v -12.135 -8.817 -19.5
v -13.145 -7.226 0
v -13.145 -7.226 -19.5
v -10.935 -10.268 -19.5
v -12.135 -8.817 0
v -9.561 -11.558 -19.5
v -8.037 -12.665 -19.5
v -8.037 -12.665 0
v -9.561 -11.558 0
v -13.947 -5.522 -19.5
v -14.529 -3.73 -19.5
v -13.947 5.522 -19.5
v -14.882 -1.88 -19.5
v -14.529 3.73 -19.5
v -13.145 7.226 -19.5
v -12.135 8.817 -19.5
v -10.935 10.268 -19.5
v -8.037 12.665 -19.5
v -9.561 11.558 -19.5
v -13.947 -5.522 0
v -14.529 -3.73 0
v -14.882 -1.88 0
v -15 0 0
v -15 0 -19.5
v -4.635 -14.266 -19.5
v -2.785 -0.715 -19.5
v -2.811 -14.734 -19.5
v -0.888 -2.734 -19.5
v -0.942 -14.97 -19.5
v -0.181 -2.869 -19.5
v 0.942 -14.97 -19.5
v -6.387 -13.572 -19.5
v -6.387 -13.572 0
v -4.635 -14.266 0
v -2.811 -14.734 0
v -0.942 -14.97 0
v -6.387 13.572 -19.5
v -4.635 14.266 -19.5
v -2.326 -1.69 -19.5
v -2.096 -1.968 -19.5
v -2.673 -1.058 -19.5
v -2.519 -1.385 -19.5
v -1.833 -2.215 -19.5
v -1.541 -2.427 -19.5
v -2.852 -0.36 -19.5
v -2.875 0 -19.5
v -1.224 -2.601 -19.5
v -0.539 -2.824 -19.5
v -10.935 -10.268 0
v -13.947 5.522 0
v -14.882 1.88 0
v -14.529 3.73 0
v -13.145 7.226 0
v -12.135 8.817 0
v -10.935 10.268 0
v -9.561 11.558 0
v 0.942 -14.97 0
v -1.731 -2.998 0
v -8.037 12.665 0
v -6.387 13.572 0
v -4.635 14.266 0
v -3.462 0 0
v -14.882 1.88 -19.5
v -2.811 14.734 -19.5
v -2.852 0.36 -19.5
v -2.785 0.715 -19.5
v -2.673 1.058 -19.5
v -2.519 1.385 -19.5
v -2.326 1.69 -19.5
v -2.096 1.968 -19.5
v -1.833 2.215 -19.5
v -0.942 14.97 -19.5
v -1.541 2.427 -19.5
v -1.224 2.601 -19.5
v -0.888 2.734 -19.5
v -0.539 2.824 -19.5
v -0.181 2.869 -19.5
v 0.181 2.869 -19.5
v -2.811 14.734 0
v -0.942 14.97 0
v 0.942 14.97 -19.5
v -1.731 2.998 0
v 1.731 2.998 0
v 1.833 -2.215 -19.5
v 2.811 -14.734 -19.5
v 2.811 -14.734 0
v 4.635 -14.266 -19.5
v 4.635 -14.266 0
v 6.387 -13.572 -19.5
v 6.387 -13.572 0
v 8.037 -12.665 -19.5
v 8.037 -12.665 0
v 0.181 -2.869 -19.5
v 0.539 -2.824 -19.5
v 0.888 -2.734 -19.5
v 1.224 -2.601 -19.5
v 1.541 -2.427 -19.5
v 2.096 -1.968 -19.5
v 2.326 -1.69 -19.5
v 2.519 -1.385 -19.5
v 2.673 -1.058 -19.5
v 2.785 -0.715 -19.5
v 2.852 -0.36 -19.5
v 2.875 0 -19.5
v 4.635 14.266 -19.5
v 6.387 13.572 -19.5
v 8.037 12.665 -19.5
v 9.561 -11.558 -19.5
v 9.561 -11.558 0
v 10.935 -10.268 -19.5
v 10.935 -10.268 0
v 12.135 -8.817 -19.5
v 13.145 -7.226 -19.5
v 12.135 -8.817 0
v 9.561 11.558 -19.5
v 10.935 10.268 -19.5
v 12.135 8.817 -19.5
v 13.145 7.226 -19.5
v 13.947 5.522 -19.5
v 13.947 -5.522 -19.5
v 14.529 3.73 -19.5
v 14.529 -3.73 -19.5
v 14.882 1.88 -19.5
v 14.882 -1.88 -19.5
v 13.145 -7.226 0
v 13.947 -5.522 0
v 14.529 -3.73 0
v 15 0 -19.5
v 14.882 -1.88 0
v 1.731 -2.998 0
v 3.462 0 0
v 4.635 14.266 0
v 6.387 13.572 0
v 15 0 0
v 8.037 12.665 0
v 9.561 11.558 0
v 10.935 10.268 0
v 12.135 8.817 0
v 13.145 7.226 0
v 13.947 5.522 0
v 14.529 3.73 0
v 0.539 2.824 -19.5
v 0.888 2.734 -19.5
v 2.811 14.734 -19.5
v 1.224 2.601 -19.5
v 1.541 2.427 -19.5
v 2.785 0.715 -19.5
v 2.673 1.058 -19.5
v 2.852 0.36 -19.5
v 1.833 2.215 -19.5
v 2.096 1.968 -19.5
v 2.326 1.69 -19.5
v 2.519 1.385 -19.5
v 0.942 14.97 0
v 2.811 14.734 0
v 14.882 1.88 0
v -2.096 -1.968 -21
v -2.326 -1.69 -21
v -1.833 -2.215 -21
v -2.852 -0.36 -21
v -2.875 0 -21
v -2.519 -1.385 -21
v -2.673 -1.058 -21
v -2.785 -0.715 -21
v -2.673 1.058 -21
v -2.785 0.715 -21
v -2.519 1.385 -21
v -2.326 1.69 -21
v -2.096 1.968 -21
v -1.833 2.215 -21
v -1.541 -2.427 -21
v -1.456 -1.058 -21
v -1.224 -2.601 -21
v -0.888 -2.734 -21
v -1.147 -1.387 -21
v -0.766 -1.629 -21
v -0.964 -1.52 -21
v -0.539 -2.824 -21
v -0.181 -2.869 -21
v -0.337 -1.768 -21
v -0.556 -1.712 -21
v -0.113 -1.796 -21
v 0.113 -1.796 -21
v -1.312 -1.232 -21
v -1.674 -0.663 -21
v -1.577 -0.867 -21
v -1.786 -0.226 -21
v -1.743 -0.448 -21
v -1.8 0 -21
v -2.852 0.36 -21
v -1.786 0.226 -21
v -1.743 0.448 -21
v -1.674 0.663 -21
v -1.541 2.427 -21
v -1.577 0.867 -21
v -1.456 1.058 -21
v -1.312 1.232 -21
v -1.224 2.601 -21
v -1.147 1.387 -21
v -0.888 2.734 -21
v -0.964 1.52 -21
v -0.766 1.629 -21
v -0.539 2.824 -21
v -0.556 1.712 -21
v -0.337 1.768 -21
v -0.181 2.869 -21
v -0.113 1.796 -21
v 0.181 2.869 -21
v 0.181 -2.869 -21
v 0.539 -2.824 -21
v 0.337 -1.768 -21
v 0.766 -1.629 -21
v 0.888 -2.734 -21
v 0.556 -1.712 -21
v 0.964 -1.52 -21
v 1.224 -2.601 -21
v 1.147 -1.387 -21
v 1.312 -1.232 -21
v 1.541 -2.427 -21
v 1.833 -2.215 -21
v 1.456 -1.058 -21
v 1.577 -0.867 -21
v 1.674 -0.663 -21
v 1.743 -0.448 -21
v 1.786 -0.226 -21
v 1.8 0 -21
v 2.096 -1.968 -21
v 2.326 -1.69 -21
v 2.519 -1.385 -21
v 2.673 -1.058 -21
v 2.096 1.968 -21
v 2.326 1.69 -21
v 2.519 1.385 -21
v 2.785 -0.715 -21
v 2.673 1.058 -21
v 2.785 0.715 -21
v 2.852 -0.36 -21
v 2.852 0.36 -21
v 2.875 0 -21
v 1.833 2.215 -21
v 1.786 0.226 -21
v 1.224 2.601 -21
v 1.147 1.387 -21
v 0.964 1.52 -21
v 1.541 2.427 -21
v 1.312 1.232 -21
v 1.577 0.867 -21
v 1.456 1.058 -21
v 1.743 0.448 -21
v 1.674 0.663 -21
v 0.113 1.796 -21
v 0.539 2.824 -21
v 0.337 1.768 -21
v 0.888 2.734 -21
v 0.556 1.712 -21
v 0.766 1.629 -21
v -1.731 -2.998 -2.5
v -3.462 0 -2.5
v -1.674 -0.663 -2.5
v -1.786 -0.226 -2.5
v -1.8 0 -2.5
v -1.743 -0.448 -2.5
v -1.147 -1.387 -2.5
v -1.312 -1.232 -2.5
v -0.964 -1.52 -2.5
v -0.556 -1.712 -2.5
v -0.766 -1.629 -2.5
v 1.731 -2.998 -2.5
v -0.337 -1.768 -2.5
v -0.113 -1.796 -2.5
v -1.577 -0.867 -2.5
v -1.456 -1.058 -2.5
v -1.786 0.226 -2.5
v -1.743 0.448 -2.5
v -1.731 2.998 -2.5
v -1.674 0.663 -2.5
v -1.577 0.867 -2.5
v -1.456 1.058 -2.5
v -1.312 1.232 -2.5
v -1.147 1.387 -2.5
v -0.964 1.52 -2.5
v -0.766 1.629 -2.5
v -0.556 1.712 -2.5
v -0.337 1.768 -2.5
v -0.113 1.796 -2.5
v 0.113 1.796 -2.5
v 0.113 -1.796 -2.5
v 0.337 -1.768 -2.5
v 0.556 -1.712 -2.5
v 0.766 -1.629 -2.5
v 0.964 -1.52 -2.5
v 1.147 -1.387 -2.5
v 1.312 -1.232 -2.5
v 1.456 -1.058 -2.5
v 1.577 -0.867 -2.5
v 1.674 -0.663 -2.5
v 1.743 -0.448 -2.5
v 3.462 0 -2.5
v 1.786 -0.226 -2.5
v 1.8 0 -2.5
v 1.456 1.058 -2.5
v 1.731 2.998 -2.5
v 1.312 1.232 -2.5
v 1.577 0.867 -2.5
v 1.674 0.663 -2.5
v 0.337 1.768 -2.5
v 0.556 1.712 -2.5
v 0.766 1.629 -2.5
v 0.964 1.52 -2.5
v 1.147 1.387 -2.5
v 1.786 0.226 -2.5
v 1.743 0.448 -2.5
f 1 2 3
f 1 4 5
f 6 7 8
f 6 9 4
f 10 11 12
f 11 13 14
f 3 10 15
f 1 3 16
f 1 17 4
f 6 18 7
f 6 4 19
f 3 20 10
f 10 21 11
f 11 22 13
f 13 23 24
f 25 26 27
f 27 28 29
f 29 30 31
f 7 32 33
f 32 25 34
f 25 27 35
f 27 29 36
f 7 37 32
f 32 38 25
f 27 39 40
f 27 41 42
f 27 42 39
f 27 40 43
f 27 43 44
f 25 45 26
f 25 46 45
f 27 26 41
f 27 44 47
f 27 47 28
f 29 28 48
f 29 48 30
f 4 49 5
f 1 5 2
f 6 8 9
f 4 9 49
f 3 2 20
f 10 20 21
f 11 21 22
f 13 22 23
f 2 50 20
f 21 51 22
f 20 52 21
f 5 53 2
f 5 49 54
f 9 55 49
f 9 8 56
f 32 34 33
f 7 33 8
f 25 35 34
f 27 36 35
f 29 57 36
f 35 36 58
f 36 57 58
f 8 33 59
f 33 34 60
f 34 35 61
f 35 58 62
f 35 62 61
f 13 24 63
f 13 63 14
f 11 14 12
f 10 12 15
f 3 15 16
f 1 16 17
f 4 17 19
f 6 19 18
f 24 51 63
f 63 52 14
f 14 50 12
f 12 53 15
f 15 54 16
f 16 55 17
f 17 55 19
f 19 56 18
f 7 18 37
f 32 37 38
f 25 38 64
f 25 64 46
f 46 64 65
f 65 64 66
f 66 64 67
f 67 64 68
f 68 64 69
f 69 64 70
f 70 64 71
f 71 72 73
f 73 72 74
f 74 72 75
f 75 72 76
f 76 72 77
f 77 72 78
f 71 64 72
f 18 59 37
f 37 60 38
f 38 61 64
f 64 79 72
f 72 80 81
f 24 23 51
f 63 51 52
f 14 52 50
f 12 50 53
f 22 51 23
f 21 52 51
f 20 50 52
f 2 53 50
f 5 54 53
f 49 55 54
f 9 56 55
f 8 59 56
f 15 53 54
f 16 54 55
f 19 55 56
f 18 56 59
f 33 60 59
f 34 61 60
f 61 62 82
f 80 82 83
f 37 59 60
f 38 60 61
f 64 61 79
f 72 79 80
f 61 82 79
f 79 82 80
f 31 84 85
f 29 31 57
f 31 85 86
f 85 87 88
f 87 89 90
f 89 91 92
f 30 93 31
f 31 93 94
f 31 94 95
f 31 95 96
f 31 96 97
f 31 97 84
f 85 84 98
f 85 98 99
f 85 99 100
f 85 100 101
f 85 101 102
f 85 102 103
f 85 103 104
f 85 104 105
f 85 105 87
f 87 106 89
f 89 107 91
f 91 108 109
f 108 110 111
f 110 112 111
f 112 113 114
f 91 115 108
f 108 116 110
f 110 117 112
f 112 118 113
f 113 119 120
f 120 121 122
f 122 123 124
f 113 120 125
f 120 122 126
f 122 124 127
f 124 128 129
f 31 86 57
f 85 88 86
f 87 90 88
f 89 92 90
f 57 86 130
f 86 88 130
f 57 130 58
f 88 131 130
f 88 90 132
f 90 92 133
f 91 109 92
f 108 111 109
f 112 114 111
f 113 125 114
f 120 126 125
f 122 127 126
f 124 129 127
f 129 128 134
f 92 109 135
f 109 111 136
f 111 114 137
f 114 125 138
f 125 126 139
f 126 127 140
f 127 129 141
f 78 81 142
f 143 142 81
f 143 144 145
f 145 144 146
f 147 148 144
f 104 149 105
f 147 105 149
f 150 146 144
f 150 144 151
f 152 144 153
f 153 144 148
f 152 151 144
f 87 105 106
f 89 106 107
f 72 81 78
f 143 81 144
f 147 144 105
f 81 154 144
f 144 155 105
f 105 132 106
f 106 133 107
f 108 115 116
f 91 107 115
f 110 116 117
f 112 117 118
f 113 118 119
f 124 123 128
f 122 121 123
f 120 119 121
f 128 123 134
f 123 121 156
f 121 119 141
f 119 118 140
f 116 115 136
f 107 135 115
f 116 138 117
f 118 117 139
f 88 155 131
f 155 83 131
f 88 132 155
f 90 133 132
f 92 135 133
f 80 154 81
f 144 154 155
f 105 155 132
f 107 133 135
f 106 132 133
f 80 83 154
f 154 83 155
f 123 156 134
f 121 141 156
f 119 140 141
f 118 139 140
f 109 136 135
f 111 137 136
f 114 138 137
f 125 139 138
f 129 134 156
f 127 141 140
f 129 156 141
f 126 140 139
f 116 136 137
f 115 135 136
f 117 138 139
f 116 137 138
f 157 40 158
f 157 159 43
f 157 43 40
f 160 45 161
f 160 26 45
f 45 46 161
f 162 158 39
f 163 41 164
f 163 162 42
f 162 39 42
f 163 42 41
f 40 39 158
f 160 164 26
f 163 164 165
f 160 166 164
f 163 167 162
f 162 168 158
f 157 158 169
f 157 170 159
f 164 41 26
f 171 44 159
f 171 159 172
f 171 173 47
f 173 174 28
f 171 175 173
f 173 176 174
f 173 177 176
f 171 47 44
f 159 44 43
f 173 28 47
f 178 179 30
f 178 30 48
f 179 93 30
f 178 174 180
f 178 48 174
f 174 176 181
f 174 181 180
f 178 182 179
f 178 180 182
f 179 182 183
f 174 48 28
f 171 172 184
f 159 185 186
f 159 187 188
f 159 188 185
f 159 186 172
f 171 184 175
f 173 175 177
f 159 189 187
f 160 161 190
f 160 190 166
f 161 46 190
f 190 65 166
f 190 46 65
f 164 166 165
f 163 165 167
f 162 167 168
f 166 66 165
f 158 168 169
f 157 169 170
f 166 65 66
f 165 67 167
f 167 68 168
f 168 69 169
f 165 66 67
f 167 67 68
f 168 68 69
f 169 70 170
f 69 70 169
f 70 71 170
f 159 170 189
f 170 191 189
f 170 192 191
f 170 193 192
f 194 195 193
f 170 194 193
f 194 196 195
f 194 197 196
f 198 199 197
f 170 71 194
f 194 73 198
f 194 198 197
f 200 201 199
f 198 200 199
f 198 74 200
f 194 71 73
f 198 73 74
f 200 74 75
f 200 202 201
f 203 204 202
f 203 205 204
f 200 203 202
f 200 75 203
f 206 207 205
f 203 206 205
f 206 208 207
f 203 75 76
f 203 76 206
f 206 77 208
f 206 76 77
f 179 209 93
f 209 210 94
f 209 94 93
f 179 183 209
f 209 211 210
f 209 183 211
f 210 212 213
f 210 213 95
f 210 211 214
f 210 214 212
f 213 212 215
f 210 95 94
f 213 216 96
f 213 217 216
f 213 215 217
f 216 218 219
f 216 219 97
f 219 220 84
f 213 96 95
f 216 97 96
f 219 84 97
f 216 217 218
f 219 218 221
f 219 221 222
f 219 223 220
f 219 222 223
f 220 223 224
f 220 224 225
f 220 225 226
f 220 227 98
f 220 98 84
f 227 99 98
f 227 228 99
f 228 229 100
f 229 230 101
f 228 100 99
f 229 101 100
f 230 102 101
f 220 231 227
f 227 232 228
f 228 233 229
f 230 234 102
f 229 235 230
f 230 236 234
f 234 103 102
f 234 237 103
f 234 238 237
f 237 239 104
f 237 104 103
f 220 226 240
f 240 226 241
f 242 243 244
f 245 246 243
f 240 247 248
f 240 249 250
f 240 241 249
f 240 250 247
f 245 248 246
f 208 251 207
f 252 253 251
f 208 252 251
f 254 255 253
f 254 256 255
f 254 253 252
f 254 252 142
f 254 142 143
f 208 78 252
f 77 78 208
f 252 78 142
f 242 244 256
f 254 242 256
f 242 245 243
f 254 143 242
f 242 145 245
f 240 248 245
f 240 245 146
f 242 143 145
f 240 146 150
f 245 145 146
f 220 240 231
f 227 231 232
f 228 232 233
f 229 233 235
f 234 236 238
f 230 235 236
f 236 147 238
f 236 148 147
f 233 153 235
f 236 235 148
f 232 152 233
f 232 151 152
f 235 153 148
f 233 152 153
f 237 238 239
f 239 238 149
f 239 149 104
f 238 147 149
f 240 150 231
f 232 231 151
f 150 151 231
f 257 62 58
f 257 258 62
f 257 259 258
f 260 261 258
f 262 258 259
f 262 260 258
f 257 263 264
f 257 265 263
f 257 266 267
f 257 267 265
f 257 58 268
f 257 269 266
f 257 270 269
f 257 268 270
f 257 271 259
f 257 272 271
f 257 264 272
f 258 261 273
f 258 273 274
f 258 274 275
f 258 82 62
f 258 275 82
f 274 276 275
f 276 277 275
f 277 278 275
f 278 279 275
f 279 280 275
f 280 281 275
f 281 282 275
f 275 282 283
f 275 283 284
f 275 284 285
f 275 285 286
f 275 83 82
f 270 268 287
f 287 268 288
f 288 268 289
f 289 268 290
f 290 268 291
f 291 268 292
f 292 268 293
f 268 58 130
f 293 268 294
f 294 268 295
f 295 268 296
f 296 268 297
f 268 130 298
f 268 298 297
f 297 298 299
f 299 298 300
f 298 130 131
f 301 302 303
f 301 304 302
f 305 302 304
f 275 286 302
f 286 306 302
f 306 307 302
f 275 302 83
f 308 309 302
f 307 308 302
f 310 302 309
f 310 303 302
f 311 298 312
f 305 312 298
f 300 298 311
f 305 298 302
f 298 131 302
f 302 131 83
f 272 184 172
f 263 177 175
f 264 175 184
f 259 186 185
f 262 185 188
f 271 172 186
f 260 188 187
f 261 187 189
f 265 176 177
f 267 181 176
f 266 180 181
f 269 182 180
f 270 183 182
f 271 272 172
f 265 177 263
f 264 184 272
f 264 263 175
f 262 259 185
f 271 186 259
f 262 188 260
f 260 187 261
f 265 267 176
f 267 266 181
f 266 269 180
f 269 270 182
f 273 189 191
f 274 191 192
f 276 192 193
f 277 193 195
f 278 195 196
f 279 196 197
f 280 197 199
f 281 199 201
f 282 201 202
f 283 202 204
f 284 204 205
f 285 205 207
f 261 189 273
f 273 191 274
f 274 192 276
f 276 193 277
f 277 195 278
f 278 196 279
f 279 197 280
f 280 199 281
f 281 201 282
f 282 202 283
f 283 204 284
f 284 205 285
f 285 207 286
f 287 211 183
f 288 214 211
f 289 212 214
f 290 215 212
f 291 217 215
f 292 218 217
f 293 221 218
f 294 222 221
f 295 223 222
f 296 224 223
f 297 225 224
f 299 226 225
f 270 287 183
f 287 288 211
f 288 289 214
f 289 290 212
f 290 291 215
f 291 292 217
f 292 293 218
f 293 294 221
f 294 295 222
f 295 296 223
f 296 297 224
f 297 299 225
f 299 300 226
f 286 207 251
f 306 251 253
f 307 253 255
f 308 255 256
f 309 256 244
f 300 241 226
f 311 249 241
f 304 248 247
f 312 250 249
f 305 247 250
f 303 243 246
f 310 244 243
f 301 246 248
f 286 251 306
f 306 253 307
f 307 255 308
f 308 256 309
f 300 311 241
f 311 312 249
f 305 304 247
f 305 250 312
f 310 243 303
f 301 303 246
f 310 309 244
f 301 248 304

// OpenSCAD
$fn = 50;

difference() {
	union() {
		translate(v = [0, 0, -19.5]) {
			cylinder(h = 19.5, r = 15.0);
		}
		#translate(v = [0, 0, -21.0]) {
			cylinder(h = 21, r = 2.875);
		}
	}
	union() {
		translate(v = [0, 0, 0]) {
			rotate(a = [0, 0, 0]) {
				difference() {
					union() {
						translate(v = [0, 0, -2.5]) {
							linear_extrude(height = 2.5) {
								polygon(points = [[3.4619999999999997, 0.0], [1.7310000000000003, 2.9981799479017264], [-1.7309999999999992, 2.9981799479017264], [-3.4619999999999997, 4.2397272186481365e-16], [-1.7310000000000014, -2.998179947901726], [1.7309999999999977, -2.9981799479017277]]);
							}
						}
					}
					union();
				}
			}
		}
		#translate(v = [0, 0, -100.0]) {
			cylinder(h = 200, r = 1.8);
		}
	}
}
